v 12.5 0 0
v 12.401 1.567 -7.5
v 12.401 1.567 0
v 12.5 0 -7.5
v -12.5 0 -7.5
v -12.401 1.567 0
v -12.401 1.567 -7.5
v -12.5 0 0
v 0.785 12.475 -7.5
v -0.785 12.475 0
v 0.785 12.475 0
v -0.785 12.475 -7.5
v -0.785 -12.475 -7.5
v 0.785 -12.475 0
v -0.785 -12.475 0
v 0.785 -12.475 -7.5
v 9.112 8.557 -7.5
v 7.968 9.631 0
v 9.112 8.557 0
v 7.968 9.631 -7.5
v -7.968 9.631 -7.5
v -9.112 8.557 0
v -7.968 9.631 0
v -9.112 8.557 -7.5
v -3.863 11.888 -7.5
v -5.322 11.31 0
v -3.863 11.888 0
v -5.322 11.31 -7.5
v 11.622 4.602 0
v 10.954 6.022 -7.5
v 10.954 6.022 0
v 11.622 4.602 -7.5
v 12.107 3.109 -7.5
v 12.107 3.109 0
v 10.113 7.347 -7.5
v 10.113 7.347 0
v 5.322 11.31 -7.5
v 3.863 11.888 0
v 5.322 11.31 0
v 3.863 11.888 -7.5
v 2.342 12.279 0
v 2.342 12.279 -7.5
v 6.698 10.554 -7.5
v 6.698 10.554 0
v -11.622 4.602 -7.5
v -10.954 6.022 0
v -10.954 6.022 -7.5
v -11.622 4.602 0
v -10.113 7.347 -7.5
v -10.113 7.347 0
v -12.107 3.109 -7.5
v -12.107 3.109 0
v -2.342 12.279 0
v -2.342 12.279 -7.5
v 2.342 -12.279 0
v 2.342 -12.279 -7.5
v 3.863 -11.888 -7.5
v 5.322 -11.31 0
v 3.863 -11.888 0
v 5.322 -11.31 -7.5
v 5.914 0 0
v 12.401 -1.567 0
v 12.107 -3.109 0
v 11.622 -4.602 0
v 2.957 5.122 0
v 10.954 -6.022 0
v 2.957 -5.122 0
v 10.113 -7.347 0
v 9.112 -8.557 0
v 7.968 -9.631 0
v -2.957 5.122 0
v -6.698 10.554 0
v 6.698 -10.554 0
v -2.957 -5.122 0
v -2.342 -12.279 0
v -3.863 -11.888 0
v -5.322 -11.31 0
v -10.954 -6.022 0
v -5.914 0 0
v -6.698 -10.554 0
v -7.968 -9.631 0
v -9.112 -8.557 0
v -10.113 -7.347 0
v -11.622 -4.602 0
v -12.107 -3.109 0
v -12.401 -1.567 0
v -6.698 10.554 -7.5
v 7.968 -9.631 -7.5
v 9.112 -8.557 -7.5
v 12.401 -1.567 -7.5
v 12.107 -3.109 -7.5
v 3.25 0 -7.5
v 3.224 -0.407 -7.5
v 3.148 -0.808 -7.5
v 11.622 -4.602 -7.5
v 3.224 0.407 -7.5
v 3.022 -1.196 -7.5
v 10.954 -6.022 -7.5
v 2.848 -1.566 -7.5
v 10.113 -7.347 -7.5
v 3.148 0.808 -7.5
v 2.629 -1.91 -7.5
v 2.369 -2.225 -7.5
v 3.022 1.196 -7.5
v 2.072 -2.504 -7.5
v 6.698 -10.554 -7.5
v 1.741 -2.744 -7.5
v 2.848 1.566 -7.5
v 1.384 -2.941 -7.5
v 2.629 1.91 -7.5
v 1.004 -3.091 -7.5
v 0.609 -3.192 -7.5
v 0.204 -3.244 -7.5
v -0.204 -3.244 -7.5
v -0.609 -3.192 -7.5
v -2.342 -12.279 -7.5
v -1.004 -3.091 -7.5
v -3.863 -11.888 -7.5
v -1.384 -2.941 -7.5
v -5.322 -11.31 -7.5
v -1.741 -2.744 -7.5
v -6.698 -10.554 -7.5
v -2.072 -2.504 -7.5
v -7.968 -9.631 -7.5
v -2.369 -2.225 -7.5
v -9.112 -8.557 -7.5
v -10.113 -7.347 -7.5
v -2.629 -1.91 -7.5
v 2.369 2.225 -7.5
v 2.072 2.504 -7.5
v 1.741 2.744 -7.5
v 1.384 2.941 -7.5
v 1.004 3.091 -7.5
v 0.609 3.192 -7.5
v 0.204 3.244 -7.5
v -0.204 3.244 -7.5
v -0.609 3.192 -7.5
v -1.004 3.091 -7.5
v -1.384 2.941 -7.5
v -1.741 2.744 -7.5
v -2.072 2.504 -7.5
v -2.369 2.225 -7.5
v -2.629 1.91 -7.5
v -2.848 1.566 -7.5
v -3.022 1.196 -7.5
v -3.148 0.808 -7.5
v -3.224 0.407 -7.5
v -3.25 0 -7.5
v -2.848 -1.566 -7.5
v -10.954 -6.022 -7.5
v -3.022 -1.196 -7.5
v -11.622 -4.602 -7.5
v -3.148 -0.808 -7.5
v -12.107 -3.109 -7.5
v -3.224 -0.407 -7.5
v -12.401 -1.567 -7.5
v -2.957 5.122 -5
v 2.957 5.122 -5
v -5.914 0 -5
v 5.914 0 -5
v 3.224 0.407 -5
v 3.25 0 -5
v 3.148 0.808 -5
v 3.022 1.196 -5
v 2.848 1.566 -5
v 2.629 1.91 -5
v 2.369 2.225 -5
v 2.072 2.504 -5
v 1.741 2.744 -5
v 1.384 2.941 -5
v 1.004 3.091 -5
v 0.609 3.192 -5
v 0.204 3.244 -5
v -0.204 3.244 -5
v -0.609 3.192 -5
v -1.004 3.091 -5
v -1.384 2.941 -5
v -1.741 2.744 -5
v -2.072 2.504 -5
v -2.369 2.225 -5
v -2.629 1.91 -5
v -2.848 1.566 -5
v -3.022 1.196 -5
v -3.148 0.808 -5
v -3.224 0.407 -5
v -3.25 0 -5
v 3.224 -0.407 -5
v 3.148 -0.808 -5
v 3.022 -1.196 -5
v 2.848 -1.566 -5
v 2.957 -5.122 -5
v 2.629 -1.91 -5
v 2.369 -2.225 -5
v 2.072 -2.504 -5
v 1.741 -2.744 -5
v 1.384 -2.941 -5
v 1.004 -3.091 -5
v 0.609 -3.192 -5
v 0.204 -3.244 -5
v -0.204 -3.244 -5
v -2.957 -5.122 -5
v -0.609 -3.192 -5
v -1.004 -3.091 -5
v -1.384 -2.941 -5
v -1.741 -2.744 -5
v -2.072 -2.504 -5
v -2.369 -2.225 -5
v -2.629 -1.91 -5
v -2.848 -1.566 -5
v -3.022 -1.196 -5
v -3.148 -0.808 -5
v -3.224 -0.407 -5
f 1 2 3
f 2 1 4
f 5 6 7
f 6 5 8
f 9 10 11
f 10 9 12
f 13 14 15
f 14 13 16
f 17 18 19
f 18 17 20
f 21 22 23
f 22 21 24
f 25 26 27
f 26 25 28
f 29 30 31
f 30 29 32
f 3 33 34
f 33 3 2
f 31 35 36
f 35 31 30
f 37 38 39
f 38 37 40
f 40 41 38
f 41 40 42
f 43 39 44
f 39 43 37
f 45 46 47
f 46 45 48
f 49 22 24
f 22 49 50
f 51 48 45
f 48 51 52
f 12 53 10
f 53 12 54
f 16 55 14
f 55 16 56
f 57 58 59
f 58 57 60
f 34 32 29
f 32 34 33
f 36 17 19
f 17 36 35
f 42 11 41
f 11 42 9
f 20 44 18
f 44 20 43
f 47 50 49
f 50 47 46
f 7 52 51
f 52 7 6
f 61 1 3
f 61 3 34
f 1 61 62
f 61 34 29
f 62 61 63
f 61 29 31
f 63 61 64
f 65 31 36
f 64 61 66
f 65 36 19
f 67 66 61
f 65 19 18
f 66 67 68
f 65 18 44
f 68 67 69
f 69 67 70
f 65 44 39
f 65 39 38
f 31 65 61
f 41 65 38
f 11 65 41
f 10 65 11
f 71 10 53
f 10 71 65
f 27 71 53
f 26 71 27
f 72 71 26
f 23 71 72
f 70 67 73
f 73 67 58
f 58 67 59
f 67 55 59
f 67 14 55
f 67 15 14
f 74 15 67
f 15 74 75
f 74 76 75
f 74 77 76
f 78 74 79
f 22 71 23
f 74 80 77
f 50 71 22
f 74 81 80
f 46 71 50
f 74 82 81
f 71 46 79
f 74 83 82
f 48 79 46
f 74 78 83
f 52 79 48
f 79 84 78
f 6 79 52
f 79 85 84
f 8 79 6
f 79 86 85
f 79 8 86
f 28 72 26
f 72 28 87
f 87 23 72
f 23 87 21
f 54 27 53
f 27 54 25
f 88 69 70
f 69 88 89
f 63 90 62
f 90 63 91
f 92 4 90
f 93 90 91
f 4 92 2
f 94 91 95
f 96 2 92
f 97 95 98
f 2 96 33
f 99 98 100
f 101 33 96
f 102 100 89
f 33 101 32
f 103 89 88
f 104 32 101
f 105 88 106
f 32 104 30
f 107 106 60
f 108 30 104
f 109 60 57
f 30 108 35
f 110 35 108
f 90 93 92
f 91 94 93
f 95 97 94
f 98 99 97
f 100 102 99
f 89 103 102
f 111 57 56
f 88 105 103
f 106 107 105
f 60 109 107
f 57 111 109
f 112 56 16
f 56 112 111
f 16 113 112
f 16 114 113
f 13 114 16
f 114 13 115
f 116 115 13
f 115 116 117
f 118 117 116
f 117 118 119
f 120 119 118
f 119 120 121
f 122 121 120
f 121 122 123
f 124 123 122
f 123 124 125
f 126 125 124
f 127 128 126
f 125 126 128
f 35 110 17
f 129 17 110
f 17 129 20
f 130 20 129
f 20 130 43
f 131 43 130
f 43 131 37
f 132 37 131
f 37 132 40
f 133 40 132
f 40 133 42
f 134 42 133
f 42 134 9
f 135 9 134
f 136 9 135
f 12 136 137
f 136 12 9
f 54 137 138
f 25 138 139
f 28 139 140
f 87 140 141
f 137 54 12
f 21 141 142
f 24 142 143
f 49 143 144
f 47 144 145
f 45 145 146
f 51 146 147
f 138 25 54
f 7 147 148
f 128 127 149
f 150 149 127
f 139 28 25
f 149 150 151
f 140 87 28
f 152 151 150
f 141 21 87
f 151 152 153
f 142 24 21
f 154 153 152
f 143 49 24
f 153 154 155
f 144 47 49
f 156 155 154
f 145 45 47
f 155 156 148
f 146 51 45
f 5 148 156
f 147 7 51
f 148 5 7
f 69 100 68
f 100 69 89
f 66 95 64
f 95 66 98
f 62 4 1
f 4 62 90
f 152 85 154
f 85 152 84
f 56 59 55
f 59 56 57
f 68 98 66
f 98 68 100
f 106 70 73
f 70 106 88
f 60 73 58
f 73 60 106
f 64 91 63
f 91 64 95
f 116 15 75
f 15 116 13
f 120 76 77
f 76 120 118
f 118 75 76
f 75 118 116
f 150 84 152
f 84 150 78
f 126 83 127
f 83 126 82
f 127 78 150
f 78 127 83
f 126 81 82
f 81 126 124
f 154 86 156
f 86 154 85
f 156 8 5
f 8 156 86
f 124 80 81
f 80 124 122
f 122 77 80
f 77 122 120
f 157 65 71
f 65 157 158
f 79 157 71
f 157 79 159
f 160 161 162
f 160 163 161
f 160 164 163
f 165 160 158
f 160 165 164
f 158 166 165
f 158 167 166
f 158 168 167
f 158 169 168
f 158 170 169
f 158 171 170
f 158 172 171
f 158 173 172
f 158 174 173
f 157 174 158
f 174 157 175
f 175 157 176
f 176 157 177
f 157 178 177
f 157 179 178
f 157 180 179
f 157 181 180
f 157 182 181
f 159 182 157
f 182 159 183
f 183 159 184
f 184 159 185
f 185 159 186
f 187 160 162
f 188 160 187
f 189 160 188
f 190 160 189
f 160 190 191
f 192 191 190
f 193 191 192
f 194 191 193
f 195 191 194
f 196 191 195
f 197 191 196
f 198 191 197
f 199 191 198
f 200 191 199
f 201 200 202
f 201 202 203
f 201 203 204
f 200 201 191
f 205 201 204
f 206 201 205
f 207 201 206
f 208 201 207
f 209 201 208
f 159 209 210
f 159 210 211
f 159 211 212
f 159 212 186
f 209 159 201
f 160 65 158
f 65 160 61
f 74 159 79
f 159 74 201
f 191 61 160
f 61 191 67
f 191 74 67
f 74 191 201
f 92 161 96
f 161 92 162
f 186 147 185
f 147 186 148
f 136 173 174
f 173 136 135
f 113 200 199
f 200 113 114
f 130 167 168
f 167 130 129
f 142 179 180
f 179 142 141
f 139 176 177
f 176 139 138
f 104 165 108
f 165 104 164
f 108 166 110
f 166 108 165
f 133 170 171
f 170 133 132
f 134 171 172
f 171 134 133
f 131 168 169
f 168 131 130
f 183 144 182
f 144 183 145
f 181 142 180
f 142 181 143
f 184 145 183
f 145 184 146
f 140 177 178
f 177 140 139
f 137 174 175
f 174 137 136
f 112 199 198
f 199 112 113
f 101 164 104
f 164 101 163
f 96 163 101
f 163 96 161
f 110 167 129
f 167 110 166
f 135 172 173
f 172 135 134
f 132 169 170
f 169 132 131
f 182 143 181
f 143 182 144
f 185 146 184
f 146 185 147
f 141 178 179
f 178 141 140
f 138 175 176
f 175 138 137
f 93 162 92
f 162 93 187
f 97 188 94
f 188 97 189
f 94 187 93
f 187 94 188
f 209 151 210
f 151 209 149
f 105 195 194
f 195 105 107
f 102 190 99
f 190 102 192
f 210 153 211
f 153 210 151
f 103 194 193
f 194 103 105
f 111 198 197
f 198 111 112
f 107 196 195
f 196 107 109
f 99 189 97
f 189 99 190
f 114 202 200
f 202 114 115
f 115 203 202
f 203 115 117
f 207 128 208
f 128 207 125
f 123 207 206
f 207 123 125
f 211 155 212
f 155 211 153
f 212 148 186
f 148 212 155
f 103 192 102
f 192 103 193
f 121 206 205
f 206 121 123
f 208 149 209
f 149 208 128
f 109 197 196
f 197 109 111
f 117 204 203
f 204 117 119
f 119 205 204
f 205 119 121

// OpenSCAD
$fn = 50;


difference() {
	union() {
		translate(v = [0, 0, -7.5000000000]) {
			cylinder(h = 7.5000000000, r = 12.5000000000);
		}
		#translate(v = [0, 0, -9.0000000000]) {
			cylinder(h = 9, r = 2.8750000000);
		}
	}
	union() {
		translate(v = [0, 0, 0]) {
			rotate(a = [0, 0, 0]) {
				difference() {
					union() {
						translate(v = [0, 0, -5]) {
							linear_extrude(height = 5) {
								polygon(points = [[5.9142500000, 0.0000000000], [2.9571250000, 5.1218907443], [-2.9571250000, 5.1218907443], [-5.9142500000, 0.0000000000], [-2.9571250000, -5.1218907443], [2.9571250000, -5.1218907443]]);
							}
						}
					}
					union();
				}
			}
		}
		#translate(v = [0, 0, -100.0000000000]) {
			cylinder(h = 200, r = 3.2500000000);
		}
	}
}
